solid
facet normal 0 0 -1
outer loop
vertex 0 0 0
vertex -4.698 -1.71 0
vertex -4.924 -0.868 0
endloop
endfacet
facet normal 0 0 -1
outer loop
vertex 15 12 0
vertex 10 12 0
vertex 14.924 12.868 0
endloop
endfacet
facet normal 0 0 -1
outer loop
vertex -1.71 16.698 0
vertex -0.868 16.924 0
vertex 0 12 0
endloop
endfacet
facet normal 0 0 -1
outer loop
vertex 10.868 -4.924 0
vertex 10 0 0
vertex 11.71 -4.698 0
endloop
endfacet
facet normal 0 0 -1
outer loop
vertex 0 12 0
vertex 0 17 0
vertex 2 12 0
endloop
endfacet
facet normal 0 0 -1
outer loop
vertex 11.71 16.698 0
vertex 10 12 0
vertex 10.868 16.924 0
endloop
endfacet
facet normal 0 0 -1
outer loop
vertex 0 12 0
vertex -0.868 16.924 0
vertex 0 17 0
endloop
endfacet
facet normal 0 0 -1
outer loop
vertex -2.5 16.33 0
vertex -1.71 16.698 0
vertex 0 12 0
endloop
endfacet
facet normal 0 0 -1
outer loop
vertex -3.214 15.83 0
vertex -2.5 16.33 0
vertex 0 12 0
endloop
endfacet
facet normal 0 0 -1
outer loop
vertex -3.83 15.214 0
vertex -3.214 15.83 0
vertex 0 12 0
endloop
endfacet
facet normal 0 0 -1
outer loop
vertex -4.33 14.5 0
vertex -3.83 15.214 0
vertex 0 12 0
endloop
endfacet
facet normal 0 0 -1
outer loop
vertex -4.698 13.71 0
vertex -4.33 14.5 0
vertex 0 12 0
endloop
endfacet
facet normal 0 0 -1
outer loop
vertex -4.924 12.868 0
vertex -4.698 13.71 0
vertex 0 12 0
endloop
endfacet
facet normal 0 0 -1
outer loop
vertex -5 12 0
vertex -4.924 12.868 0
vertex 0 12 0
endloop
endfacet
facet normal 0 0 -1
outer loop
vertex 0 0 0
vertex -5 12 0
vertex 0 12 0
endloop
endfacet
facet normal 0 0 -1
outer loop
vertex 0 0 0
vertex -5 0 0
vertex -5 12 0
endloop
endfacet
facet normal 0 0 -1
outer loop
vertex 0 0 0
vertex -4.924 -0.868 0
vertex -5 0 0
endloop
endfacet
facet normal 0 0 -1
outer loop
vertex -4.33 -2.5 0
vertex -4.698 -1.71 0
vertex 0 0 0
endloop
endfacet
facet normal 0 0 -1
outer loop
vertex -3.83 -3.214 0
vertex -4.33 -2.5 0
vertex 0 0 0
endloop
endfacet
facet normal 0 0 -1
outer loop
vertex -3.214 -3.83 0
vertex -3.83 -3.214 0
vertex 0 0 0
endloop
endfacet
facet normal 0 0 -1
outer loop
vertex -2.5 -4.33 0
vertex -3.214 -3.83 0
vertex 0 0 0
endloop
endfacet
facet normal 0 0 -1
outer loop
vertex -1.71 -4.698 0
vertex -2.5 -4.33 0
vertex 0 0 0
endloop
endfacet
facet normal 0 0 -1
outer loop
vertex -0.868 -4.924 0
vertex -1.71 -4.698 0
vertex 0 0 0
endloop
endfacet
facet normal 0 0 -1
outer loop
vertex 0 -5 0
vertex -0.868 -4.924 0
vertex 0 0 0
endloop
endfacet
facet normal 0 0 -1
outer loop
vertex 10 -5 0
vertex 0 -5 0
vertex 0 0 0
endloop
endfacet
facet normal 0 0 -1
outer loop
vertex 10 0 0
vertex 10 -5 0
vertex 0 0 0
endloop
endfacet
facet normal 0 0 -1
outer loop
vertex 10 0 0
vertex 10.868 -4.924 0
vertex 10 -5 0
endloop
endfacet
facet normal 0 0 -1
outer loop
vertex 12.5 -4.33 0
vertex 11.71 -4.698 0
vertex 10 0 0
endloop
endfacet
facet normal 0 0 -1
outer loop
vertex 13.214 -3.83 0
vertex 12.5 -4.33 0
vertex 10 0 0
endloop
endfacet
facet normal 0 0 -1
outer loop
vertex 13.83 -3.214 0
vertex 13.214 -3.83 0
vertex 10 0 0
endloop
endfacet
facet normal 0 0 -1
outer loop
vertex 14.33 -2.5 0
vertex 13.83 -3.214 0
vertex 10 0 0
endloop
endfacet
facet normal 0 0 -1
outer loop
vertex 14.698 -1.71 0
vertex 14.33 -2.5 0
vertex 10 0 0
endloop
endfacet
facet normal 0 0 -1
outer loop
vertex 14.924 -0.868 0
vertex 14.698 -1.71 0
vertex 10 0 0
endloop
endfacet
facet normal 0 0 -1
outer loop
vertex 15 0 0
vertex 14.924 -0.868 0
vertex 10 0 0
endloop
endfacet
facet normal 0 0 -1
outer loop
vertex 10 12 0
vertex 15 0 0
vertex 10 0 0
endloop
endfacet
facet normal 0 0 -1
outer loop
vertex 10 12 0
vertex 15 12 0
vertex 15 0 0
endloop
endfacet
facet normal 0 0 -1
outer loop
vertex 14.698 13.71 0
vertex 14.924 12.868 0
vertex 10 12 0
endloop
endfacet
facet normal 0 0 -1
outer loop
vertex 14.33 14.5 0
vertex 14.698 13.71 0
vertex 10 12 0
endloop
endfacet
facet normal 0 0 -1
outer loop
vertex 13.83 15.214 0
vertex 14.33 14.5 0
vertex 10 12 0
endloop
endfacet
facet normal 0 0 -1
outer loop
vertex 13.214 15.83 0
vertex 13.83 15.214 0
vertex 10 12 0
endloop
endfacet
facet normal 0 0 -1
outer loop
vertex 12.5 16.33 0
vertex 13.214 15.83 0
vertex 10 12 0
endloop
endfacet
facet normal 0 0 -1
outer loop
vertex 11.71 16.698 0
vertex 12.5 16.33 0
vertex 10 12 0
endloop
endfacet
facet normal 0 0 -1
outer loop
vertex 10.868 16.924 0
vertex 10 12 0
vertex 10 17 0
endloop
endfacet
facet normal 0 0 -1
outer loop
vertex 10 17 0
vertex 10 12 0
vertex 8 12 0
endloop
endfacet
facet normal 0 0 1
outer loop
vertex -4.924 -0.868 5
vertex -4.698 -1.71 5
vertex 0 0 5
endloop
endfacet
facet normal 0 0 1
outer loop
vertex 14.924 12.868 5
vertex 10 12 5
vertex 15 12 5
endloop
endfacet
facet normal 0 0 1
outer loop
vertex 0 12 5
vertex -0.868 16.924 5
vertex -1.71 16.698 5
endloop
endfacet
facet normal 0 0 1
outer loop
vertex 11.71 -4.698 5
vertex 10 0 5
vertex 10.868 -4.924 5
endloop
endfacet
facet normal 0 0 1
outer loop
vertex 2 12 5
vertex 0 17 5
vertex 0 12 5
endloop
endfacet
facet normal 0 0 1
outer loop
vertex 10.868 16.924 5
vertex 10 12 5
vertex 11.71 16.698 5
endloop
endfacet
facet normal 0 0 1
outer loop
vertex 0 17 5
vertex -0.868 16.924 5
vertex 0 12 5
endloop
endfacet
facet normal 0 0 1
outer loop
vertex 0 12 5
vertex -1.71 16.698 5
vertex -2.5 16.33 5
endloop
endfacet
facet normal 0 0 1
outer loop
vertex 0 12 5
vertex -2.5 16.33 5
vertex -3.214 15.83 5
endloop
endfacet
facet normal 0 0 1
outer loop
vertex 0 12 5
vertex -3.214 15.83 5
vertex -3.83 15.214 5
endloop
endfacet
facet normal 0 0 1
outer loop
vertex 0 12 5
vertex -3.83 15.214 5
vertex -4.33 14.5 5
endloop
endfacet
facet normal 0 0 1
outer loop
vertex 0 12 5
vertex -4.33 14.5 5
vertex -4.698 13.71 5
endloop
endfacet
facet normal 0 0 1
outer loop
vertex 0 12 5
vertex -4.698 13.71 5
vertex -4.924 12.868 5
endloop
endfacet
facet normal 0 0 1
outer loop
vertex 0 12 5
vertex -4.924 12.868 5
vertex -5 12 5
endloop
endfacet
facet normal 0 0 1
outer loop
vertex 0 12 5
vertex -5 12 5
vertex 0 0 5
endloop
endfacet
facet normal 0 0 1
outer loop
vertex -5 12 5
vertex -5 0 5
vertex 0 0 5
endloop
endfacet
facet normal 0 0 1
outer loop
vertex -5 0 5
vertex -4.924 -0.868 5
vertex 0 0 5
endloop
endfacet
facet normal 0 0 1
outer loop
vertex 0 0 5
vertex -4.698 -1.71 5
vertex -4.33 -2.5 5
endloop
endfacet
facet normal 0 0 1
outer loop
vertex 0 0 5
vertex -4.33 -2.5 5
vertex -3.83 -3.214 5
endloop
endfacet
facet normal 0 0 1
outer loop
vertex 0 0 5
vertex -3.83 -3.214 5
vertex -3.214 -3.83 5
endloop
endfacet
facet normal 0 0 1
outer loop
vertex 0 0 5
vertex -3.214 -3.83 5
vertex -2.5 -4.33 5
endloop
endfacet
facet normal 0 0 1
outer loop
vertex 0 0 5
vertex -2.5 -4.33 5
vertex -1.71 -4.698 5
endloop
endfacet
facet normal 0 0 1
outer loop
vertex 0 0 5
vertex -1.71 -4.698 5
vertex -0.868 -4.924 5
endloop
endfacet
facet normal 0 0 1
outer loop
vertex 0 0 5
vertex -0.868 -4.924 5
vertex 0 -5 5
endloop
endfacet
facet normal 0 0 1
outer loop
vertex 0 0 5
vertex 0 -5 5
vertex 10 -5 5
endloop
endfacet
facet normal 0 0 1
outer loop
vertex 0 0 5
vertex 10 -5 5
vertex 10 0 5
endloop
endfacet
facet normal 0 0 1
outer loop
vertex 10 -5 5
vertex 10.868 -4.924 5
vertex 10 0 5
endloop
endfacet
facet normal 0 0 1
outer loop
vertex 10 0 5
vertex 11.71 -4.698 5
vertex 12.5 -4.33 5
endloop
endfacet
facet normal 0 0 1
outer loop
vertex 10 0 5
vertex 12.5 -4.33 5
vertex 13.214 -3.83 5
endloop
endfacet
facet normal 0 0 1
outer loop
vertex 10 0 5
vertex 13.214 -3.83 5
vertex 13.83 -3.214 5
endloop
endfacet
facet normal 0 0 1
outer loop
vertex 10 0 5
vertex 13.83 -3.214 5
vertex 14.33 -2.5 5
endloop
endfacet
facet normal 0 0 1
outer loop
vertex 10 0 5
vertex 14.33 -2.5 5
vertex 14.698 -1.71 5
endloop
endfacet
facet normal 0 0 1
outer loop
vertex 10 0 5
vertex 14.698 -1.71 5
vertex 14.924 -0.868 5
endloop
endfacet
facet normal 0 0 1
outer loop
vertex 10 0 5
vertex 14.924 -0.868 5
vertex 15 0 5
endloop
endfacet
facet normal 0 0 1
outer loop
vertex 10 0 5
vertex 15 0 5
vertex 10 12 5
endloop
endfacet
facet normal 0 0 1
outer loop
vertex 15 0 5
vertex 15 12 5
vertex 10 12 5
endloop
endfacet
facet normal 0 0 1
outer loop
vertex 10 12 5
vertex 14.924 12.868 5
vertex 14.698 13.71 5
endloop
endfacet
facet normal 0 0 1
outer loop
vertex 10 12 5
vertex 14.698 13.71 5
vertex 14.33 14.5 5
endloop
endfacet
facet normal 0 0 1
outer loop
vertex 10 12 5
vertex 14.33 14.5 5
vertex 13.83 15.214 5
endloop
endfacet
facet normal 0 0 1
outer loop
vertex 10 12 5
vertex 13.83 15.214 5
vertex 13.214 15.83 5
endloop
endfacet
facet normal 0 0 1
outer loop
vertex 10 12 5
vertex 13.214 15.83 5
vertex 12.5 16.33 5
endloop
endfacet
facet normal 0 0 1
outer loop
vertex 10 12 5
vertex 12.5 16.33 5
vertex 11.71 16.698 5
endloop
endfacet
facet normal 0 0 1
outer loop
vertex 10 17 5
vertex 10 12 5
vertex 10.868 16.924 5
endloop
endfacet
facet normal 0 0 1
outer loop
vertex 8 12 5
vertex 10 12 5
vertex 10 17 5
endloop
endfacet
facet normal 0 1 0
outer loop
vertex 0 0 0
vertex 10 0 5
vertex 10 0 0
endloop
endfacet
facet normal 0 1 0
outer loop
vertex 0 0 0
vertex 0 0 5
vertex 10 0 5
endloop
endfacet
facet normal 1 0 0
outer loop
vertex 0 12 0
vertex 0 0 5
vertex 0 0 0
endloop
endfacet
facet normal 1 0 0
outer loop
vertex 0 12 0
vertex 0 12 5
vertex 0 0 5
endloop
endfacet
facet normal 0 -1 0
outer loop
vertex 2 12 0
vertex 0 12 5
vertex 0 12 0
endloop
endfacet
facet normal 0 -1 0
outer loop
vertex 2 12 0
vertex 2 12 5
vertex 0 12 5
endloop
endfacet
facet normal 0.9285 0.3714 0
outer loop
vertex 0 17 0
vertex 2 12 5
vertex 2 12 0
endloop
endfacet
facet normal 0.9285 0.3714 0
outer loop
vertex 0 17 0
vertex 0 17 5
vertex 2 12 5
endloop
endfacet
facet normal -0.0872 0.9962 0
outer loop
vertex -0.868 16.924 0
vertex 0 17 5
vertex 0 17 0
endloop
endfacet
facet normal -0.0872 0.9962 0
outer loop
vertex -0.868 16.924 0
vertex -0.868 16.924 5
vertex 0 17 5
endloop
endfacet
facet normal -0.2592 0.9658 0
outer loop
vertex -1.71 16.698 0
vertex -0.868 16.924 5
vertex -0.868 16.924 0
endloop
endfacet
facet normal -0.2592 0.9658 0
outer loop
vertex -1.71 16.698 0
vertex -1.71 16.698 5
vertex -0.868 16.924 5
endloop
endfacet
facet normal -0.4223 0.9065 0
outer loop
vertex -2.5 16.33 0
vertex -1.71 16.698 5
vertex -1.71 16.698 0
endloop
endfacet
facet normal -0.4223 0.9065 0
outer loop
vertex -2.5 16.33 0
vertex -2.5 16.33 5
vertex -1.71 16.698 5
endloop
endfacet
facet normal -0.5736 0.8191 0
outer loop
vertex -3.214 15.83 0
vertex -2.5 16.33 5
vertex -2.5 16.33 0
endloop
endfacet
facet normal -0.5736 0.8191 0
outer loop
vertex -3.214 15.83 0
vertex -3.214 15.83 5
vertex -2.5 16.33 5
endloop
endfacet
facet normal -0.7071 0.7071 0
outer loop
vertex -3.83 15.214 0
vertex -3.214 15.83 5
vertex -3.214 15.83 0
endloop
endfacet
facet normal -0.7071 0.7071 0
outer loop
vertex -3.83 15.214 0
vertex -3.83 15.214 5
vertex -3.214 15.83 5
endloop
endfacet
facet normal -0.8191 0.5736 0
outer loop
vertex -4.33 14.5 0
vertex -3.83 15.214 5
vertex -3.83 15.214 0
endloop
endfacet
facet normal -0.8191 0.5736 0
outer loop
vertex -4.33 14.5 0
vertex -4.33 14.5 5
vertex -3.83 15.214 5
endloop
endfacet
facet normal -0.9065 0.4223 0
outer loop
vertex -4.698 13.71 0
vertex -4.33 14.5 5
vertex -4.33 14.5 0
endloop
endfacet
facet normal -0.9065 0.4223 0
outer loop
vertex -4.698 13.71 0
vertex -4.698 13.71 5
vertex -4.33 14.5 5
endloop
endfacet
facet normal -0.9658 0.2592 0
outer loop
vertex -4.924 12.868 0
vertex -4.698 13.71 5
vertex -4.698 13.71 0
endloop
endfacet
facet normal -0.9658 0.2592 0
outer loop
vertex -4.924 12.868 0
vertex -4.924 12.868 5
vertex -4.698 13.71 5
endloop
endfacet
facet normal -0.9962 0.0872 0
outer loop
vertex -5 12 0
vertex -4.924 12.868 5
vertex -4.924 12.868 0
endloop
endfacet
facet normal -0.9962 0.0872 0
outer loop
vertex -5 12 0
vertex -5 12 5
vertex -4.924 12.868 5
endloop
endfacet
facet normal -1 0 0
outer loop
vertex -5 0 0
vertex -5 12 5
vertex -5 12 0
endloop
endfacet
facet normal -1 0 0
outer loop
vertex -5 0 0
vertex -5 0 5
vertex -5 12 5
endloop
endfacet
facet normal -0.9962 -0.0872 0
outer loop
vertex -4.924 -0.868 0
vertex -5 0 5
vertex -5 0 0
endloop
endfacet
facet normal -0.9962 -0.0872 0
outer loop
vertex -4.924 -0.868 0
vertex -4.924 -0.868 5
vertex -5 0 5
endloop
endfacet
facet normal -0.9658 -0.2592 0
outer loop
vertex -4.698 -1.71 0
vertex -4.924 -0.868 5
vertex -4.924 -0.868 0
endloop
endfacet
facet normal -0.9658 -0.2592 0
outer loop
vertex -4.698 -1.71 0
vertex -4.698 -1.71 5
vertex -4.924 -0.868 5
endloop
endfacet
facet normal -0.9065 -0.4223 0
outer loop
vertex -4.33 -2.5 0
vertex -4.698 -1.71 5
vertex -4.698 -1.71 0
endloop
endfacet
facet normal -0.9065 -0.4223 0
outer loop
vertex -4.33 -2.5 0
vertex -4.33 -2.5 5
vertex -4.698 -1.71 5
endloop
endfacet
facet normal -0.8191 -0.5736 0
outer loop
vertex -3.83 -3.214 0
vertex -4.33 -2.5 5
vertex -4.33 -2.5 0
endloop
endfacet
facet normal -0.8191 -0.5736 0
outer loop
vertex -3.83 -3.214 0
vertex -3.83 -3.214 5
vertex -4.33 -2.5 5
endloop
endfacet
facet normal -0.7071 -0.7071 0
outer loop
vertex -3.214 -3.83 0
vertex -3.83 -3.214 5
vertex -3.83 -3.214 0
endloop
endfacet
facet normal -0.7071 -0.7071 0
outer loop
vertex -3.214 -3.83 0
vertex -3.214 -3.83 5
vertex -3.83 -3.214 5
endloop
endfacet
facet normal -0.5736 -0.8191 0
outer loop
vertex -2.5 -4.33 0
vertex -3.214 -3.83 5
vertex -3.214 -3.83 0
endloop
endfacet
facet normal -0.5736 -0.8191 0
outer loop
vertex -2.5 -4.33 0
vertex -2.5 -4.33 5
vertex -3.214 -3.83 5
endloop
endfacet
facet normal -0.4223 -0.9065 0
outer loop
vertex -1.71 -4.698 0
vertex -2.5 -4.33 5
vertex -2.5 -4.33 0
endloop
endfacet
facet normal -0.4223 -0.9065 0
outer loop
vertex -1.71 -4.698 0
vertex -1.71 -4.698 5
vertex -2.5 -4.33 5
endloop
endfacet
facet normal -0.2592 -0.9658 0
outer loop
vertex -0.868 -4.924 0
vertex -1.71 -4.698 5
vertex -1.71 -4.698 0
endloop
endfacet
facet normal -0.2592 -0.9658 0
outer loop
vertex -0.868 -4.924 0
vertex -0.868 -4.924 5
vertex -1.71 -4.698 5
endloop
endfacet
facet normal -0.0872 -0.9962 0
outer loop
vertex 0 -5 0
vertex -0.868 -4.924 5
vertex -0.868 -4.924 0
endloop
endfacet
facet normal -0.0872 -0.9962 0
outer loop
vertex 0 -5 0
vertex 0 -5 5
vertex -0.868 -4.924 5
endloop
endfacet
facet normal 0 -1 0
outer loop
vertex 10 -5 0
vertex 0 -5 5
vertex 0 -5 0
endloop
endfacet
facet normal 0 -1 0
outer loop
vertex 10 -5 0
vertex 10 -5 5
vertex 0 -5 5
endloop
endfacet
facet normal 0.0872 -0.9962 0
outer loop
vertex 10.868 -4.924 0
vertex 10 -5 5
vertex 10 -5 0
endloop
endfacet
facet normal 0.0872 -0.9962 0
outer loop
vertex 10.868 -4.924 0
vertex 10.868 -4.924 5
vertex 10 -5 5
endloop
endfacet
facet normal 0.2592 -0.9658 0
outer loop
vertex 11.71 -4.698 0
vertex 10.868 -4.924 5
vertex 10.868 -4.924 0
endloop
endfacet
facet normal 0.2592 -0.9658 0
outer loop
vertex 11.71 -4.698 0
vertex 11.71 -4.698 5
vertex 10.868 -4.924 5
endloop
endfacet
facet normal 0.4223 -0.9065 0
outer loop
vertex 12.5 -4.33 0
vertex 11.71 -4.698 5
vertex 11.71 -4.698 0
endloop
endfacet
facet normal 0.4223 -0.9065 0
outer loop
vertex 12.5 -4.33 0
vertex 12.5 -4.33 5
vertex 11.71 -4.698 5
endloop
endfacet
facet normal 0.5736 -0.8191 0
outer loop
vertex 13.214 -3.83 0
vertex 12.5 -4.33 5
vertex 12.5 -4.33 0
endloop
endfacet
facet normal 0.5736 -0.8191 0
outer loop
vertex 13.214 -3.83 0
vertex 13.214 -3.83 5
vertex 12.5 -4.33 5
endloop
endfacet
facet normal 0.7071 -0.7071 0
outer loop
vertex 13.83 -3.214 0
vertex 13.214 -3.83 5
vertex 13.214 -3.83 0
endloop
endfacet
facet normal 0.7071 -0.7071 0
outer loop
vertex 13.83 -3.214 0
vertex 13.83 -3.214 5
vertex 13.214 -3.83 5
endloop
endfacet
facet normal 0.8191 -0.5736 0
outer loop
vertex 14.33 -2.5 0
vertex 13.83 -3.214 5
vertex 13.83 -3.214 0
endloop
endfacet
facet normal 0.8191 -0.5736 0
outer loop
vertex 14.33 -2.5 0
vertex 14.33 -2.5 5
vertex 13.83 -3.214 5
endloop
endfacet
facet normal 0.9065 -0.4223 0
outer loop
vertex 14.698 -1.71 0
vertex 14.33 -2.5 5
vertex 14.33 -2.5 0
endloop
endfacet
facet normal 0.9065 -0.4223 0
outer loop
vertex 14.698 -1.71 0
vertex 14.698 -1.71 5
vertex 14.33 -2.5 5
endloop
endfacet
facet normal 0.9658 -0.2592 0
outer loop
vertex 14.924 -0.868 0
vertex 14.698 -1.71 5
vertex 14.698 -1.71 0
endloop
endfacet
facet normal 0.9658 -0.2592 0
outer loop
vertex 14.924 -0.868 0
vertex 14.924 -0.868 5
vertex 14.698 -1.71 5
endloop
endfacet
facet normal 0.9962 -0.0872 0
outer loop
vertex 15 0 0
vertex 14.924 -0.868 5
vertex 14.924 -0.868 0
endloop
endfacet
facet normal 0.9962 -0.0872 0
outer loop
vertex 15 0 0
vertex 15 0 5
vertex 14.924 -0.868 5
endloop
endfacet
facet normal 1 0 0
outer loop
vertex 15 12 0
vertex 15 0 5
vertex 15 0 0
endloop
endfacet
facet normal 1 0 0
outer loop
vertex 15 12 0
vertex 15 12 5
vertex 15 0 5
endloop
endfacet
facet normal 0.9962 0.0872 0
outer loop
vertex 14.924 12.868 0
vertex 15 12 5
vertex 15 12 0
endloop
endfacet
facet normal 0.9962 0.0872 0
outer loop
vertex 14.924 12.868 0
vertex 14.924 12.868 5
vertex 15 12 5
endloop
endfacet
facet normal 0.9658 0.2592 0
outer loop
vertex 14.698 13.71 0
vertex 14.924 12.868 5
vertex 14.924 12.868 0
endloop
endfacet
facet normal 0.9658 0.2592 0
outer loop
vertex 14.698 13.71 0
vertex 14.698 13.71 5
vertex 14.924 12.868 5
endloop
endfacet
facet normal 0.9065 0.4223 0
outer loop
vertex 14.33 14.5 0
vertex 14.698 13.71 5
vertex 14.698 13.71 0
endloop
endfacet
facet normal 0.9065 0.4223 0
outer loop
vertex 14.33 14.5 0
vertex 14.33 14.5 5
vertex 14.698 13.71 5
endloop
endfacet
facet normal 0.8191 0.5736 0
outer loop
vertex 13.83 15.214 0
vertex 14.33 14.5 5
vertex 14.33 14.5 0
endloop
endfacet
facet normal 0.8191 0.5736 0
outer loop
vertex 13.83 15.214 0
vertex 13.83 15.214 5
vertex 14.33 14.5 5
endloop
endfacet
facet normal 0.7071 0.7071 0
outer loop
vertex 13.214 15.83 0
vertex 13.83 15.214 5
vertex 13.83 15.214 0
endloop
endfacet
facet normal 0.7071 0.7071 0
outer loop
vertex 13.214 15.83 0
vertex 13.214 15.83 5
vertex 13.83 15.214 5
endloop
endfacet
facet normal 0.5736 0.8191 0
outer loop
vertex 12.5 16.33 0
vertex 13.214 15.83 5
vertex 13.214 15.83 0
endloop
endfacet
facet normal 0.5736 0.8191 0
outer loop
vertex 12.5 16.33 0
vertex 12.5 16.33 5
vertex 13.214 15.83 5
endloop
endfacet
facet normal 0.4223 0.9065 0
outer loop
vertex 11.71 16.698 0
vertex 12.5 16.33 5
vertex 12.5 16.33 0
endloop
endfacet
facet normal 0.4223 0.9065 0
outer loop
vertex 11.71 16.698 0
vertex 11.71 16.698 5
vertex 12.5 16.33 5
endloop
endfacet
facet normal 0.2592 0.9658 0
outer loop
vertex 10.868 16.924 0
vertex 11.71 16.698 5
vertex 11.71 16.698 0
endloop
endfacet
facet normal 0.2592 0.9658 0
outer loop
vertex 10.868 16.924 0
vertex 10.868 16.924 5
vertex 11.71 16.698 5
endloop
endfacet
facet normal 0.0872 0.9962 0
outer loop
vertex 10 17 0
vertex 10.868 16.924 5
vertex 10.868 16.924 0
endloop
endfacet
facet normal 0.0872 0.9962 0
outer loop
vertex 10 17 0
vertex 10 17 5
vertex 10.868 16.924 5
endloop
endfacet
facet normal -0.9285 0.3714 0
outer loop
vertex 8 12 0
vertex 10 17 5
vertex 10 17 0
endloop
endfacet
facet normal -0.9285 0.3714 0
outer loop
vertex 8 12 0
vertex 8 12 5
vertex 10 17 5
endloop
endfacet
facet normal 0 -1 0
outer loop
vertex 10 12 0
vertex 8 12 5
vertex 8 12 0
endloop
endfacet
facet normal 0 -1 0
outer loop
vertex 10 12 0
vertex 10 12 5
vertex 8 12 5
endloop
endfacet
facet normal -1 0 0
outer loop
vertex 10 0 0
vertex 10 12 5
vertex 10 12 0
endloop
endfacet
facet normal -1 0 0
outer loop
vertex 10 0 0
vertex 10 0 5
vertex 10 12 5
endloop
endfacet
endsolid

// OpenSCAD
// stupid shelf spacer thing
// for our stupid shelves
// so they don't fall out
// like the stupid shelves
// that they are

wiggleRoom = 1;

pegWidth = 9 + wiggleRoom;
pegHeight = 11 + wiggleRoom;
spacerWidth = 5;

outline = 5;
clipWidth = 2;

$fn = 36;

linear_extrude(spacerWidth) {
    difference() {
        minkowski() {
            square([pegWidth, pegHeight]);
            circle(r=outline);
        };
        square([pegWidth, pegHeight]);
        polygon(points=[
            [clipWidth, pegHeight],
            [pegWidth-clipWidth, pegHeight],
            [pegWidth, pegHeight + outline],
            [0, pegHeight + outline]
        ]);
    }
}
